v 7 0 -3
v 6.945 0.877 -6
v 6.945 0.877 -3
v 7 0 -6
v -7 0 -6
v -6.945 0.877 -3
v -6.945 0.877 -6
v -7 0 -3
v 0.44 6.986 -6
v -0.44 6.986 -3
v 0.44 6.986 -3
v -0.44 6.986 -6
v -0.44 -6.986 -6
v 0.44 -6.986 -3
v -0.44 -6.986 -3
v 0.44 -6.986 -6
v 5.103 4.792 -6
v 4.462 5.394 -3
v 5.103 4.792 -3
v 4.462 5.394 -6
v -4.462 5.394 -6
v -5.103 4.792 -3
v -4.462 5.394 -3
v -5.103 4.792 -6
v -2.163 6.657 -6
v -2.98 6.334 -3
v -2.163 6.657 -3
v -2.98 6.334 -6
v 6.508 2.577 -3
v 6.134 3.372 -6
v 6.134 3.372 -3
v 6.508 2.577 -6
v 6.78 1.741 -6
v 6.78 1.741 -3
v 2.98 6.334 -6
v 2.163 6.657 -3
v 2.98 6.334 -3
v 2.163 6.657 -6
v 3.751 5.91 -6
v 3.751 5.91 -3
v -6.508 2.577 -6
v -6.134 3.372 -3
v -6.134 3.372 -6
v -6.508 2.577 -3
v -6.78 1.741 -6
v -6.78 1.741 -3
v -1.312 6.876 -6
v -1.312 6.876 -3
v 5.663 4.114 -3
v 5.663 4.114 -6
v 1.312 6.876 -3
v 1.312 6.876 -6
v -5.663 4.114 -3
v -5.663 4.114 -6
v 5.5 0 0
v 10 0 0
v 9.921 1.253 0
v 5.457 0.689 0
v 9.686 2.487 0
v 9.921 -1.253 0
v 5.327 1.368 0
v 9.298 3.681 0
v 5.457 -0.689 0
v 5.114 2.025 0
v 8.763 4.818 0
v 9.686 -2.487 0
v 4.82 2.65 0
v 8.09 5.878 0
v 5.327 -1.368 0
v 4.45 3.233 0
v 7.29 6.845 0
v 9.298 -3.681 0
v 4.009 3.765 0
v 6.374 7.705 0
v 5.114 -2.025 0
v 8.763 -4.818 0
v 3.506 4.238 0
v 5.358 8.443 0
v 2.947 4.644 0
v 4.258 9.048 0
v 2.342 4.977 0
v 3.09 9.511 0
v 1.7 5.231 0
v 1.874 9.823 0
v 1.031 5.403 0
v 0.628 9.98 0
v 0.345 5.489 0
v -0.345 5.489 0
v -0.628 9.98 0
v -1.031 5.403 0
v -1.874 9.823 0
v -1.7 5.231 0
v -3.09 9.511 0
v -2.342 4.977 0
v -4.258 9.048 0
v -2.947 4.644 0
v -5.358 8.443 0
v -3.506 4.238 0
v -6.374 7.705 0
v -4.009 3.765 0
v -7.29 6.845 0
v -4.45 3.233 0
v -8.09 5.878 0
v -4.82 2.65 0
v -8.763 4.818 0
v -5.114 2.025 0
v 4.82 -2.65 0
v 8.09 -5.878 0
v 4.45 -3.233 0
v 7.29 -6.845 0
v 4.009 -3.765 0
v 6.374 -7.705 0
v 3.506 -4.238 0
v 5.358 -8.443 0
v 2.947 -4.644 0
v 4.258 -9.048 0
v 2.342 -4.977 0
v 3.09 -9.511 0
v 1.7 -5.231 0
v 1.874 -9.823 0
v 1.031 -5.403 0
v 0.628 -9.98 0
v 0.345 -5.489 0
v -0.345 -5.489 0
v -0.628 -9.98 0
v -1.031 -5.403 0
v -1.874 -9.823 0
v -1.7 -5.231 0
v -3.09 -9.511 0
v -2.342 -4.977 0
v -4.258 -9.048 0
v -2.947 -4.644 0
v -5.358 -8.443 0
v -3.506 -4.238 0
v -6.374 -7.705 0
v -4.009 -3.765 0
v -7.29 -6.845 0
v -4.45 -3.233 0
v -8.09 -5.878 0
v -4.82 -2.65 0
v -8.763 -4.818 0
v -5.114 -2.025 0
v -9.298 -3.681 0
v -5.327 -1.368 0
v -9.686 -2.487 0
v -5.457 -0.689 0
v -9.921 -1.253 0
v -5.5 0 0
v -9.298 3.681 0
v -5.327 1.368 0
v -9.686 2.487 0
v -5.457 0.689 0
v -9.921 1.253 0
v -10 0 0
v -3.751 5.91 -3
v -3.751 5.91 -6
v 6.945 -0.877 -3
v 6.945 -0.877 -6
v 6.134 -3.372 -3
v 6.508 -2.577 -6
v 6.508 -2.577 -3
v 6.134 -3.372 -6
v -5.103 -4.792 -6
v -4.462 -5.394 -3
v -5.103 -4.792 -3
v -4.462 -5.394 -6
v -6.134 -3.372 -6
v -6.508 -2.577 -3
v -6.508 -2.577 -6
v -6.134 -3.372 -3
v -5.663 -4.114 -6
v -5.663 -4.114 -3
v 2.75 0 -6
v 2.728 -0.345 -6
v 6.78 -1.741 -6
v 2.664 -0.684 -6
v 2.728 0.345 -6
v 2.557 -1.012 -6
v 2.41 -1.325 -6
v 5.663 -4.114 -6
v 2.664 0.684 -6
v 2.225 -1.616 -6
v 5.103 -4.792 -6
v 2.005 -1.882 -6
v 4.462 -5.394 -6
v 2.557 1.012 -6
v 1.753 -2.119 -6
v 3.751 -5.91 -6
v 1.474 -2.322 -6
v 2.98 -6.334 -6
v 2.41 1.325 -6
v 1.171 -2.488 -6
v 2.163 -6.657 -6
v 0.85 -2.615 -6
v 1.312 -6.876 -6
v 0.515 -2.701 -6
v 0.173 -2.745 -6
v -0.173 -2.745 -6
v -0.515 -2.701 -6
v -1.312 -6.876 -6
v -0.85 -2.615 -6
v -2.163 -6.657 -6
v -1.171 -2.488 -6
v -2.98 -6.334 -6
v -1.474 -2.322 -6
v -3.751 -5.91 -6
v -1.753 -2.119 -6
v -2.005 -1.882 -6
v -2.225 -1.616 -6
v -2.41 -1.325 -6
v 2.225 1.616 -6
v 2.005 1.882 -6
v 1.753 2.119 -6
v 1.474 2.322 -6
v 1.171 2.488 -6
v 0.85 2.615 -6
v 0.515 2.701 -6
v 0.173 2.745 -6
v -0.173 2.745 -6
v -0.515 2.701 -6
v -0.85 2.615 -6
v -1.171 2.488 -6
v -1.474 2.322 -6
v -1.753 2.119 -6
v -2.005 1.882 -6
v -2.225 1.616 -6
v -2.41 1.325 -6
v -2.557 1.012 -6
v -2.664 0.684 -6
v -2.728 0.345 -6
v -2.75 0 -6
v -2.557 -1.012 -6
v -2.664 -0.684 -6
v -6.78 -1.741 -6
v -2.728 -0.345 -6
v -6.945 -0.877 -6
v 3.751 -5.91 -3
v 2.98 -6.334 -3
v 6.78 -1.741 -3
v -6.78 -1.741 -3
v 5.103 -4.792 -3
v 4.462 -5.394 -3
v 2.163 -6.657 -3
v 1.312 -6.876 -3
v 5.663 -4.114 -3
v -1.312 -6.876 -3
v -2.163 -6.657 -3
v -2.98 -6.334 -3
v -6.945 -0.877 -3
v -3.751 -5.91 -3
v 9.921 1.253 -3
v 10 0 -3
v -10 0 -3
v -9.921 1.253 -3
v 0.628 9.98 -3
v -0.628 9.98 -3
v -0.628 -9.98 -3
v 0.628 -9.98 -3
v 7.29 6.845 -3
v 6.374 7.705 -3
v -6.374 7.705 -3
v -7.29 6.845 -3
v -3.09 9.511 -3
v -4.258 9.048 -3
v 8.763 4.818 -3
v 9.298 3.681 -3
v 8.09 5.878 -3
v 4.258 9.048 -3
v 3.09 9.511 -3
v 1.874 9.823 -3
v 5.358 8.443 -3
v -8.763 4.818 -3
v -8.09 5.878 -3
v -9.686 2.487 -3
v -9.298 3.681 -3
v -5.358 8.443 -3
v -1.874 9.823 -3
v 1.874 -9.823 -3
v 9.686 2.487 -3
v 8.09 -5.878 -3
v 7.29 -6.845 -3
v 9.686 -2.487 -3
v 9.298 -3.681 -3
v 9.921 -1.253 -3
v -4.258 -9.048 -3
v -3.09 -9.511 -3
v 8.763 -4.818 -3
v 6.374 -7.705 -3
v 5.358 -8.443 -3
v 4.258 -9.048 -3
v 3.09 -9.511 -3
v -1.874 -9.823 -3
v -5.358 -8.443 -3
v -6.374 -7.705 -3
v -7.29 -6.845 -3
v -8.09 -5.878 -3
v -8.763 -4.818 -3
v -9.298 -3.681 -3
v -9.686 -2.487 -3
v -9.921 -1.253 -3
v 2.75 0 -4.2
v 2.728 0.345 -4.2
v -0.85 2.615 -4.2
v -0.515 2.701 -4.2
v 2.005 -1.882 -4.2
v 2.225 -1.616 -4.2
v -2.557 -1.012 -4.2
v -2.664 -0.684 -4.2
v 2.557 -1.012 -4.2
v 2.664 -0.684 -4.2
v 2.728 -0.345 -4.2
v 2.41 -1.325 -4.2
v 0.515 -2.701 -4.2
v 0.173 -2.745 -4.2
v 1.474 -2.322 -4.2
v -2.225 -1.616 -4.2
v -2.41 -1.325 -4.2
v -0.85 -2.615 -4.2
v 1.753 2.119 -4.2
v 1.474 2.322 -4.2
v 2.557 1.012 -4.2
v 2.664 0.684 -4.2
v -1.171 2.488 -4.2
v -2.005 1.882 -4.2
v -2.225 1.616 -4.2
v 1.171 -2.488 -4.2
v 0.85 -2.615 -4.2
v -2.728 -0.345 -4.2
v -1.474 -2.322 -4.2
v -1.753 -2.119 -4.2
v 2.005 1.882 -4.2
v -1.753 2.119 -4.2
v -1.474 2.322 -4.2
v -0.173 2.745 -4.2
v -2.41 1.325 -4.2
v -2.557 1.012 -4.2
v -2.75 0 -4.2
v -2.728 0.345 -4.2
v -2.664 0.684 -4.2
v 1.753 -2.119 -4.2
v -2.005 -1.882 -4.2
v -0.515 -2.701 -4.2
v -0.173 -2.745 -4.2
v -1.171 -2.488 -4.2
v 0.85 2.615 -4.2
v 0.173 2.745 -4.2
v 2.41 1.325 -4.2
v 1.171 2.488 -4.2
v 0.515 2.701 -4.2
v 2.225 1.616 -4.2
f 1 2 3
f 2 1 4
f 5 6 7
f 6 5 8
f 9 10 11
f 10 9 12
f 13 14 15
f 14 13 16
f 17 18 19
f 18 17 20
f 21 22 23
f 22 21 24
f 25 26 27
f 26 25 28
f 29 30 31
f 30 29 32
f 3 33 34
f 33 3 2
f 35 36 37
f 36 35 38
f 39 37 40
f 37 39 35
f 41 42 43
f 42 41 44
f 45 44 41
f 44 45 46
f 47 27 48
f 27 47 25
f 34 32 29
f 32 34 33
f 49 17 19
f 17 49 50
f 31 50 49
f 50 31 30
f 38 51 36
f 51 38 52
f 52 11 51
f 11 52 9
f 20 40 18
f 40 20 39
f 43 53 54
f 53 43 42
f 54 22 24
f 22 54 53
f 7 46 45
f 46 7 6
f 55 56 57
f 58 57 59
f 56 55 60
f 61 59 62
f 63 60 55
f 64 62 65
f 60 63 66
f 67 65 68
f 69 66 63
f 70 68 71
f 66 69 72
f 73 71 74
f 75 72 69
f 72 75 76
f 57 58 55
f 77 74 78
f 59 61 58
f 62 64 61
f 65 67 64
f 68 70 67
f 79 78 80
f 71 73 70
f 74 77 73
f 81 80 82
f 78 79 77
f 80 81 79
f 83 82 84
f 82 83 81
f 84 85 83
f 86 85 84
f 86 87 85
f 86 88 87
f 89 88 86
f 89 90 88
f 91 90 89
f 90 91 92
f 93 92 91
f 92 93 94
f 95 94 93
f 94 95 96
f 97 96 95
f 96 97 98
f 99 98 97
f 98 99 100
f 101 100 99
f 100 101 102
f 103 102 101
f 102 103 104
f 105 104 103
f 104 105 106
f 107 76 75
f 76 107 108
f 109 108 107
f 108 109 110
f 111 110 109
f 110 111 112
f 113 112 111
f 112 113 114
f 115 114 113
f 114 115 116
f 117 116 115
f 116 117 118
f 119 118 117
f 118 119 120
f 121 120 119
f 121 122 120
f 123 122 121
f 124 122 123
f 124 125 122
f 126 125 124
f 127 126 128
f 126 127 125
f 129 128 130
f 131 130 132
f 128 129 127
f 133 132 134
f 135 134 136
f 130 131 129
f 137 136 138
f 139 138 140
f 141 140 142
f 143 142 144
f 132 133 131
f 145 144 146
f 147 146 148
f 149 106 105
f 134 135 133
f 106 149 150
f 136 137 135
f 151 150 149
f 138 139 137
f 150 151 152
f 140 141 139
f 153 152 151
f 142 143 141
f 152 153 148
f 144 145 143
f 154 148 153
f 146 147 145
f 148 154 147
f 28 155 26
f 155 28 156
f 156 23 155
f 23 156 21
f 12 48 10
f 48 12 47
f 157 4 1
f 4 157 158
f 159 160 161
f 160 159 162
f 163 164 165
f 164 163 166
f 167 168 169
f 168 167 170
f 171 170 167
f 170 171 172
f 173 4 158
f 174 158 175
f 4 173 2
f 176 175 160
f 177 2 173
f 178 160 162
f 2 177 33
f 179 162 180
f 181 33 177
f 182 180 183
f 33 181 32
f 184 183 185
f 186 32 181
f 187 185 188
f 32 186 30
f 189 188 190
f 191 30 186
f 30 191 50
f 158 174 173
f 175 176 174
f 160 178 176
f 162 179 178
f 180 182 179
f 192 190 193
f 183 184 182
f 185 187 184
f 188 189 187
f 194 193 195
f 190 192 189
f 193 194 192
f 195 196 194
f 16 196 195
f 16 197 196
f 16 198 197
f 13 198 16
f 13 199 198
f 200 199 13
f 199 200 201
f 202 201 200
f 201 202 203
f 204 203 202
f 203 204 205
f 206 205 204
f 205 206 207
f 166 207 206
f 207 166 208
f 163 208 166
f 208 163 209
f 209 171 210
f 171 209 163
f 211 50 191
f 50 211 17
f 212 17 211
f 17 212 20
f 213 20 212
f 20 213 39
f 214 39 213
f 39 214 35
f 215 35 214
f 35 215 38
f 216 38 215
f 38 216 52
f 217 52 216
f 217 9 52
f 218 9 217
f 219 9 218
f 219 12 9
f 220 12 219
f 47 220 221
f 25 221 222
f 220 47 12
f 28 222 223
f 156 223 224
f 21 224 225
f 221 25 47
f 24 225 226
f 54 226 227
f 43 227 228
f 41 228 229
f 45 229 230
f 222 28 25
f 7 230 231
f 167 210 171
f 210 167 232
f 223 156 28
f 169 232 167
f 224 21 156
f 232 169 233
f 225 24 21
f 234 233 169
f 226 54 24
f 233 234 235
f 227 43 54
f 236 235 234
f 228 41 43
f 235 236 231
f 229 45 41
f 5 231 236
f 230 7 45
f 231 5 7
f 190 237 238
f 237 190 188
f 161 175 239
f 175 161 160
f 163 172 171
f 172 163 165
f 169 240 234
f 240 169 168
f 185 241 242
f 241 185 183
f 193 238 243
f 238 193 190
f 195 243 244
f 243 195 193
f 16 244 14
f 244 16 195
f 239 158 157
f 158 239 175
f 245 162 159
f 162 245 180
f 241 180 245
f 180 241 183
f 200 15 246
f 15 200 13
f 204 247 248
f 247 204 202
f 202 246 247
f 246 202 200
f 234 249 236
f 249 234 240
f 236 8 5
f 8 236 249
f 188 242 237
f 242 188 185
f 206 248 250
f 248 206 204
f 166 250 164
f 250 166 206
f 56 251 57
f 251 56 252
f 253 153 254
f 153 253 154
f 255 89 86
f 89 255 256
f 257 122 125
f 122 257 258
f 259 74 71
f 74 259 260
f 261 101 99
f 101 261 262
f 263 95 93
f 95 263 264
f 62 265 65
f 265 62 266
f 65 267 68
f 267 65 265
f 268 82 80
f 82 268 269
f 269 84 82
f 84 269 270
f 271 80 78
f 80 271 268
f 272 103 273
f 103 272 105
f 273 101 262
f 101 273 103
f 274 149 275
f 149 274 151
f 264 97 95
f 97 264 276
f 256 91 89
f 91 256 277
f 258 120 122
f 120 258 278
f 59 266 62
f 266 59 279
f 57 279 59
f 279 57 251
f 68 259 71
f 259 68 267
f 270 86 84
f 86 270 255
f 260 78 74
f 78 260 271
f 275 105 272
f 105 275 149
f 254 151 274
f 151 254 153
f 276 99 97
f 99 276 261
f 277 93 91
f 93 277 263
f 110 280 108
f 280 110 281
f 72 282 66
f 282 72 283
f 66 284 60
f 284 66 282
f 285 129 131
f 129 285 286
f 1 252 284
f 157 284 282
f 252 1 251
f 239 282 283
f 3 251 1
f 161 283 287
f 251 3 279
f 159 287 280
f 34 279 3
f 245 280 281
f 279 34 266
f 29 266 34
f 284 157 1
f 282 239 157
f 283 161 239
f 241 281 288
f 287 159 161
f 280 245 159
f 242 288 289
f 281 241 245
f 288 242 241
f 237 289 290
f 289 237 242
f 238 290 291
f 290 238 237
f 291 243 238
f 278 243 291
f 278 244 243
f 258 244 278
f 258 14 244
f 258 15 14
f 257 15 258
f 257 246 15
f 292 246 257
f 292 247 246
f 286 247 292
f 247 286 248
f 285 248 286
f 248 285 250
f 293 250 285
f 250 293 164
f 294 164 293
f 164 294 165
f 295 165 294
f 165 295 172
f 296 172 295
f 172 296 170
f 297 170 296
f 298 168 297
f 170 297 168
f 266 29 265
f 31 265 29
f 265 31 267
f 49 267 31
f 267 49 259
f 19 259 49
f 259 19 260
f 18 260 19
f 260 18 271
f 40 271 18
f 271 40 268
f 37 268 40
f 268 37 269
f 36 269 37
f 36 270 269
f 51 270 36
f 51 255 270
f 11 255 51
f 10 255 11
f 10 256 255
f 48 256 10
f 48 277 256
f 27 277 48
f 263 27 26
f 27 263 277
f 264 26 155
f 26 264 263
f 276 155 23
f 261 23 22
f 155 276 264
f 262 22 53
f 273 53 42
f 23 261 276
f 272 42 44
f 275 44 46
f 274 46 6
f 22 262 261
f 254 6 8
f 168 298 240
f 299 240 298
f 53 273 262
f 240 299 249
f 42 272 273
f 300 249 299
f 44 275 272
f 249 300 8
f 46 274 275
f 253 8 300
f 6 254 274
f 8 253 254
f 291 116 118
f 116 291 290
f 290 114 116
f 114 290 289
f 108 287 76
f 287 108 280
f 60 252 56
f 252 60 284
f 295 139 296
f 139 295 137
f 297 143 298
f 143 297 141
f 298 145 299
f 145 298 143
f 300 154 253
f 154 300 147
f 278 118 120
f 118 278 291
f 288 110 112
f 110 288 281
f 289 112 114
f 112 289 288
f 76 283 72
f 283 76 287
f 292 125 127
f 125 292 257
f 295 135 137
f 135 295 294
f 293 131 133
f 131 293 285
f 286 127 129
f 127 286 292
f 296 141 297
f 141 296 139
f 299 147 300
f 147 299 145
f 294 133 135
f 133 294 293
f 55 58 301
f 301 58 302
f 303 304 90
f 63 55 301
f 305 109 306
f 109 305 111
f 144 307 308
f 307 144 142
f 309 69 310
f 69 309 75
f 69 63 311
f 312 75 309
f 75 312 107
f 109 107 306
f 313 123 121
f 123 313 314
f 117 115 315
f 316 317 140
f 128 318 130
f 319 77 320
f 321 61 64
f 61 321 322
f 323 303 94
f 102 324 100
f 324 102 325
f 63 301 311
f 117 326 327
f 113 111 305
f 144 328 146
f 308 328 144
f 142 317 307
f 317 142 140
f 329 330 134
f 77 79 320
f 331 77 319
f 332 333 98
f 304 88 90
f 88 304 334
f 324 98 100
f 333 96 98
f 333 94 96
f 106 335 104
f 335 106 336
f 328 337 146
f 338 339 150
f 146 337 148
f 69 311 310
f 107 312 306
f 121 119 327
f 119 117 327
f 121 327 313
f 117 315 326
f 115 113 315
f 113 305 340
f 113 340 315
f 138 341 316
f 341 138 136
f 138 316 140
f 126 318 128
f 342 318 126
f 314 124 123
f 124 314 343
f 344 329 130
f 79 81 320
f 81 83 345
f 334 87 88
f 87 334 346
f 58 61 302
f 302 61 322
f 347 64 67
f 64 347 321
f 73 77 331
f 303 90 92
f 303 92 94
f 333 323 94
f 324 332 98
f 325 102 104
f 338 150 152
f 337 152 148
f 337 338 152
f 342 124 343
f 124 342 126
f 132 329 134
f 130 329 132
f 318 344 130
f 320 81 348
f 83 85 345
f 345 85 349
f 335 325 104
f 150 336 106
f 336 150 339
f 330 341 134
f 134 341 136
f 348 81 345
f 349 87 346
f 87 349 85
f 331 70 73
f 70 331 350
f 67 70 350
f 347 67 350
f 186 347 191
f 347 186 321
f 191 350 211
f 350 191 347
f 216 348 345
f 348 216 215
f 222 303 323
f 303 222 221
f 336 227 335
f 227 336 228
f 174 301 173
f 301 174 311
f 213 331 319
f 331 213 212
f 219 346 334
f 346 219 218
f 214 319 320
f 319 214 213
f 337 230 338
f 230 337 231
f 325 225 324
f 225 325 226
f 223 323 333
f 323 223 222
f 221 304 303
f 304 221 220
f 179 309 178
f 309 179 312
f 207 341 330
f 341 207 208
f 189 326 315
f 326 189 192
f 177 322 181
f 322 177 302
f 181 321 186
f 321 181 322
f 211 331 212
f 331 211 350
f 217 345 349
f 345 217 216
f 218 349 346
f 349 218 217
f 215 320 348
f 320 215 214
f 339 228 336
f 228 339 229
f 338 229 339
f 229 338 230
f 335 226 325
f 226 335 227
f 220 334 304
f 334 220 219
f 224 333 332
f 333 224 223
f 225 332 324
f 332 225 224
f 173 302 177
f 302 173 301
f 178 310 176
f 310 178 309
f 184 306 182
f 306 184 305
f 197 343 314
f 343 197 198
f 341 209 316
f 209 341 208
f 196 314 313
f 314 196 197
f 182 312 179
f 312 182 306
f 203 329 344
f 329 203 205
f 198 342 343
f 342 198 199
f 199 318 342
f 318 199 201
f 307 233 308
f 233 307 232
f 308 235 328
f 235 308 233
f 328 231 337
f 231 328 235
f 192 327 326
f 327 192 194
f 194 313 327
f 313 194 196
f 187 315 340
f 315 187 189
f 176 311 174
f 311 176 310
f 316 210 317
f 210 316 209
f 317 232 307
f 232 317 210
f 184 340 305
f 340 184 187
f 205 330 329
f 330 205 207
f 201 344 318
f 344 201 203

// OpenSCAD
$fn = 50;


difference() {
	union() {
		translate(v = [0, 0, -6.0000000000]) {
			cylinder(h = 6, r = 7.0000000000);
		}
		translate(v = [0, 0, -3.0000000000]) {
			cylinder(h = 3, r = 10.0000000000);
		}
	}
	union() {
		translate(v = [0, 0, 0]) {
			rotate(a = [0, 0, 0]) {
				difference() {
					union() {
						#translate(v = [0, 0, -6.0000000000]) {
							cylinder(h = 6, r = 2.2500000000);
						}
						#translate(v = [0, 0, -4.2000000000]) {
							cylinder(h = 4.2000000000, r1 = 2.7500000000, r2 = 5.5000000000);
						}
						#translate(v = [0, 0, -6.0000000000]) {
							cylinder(h = 6, r = 2.7500000000);
						}
						#translate(v = [0, 0, -6.0000000000]) {
							cylinder(h = 6, r = 2.2500000000);
						}
					}
					union();
				}
			}
		}
	}
}
